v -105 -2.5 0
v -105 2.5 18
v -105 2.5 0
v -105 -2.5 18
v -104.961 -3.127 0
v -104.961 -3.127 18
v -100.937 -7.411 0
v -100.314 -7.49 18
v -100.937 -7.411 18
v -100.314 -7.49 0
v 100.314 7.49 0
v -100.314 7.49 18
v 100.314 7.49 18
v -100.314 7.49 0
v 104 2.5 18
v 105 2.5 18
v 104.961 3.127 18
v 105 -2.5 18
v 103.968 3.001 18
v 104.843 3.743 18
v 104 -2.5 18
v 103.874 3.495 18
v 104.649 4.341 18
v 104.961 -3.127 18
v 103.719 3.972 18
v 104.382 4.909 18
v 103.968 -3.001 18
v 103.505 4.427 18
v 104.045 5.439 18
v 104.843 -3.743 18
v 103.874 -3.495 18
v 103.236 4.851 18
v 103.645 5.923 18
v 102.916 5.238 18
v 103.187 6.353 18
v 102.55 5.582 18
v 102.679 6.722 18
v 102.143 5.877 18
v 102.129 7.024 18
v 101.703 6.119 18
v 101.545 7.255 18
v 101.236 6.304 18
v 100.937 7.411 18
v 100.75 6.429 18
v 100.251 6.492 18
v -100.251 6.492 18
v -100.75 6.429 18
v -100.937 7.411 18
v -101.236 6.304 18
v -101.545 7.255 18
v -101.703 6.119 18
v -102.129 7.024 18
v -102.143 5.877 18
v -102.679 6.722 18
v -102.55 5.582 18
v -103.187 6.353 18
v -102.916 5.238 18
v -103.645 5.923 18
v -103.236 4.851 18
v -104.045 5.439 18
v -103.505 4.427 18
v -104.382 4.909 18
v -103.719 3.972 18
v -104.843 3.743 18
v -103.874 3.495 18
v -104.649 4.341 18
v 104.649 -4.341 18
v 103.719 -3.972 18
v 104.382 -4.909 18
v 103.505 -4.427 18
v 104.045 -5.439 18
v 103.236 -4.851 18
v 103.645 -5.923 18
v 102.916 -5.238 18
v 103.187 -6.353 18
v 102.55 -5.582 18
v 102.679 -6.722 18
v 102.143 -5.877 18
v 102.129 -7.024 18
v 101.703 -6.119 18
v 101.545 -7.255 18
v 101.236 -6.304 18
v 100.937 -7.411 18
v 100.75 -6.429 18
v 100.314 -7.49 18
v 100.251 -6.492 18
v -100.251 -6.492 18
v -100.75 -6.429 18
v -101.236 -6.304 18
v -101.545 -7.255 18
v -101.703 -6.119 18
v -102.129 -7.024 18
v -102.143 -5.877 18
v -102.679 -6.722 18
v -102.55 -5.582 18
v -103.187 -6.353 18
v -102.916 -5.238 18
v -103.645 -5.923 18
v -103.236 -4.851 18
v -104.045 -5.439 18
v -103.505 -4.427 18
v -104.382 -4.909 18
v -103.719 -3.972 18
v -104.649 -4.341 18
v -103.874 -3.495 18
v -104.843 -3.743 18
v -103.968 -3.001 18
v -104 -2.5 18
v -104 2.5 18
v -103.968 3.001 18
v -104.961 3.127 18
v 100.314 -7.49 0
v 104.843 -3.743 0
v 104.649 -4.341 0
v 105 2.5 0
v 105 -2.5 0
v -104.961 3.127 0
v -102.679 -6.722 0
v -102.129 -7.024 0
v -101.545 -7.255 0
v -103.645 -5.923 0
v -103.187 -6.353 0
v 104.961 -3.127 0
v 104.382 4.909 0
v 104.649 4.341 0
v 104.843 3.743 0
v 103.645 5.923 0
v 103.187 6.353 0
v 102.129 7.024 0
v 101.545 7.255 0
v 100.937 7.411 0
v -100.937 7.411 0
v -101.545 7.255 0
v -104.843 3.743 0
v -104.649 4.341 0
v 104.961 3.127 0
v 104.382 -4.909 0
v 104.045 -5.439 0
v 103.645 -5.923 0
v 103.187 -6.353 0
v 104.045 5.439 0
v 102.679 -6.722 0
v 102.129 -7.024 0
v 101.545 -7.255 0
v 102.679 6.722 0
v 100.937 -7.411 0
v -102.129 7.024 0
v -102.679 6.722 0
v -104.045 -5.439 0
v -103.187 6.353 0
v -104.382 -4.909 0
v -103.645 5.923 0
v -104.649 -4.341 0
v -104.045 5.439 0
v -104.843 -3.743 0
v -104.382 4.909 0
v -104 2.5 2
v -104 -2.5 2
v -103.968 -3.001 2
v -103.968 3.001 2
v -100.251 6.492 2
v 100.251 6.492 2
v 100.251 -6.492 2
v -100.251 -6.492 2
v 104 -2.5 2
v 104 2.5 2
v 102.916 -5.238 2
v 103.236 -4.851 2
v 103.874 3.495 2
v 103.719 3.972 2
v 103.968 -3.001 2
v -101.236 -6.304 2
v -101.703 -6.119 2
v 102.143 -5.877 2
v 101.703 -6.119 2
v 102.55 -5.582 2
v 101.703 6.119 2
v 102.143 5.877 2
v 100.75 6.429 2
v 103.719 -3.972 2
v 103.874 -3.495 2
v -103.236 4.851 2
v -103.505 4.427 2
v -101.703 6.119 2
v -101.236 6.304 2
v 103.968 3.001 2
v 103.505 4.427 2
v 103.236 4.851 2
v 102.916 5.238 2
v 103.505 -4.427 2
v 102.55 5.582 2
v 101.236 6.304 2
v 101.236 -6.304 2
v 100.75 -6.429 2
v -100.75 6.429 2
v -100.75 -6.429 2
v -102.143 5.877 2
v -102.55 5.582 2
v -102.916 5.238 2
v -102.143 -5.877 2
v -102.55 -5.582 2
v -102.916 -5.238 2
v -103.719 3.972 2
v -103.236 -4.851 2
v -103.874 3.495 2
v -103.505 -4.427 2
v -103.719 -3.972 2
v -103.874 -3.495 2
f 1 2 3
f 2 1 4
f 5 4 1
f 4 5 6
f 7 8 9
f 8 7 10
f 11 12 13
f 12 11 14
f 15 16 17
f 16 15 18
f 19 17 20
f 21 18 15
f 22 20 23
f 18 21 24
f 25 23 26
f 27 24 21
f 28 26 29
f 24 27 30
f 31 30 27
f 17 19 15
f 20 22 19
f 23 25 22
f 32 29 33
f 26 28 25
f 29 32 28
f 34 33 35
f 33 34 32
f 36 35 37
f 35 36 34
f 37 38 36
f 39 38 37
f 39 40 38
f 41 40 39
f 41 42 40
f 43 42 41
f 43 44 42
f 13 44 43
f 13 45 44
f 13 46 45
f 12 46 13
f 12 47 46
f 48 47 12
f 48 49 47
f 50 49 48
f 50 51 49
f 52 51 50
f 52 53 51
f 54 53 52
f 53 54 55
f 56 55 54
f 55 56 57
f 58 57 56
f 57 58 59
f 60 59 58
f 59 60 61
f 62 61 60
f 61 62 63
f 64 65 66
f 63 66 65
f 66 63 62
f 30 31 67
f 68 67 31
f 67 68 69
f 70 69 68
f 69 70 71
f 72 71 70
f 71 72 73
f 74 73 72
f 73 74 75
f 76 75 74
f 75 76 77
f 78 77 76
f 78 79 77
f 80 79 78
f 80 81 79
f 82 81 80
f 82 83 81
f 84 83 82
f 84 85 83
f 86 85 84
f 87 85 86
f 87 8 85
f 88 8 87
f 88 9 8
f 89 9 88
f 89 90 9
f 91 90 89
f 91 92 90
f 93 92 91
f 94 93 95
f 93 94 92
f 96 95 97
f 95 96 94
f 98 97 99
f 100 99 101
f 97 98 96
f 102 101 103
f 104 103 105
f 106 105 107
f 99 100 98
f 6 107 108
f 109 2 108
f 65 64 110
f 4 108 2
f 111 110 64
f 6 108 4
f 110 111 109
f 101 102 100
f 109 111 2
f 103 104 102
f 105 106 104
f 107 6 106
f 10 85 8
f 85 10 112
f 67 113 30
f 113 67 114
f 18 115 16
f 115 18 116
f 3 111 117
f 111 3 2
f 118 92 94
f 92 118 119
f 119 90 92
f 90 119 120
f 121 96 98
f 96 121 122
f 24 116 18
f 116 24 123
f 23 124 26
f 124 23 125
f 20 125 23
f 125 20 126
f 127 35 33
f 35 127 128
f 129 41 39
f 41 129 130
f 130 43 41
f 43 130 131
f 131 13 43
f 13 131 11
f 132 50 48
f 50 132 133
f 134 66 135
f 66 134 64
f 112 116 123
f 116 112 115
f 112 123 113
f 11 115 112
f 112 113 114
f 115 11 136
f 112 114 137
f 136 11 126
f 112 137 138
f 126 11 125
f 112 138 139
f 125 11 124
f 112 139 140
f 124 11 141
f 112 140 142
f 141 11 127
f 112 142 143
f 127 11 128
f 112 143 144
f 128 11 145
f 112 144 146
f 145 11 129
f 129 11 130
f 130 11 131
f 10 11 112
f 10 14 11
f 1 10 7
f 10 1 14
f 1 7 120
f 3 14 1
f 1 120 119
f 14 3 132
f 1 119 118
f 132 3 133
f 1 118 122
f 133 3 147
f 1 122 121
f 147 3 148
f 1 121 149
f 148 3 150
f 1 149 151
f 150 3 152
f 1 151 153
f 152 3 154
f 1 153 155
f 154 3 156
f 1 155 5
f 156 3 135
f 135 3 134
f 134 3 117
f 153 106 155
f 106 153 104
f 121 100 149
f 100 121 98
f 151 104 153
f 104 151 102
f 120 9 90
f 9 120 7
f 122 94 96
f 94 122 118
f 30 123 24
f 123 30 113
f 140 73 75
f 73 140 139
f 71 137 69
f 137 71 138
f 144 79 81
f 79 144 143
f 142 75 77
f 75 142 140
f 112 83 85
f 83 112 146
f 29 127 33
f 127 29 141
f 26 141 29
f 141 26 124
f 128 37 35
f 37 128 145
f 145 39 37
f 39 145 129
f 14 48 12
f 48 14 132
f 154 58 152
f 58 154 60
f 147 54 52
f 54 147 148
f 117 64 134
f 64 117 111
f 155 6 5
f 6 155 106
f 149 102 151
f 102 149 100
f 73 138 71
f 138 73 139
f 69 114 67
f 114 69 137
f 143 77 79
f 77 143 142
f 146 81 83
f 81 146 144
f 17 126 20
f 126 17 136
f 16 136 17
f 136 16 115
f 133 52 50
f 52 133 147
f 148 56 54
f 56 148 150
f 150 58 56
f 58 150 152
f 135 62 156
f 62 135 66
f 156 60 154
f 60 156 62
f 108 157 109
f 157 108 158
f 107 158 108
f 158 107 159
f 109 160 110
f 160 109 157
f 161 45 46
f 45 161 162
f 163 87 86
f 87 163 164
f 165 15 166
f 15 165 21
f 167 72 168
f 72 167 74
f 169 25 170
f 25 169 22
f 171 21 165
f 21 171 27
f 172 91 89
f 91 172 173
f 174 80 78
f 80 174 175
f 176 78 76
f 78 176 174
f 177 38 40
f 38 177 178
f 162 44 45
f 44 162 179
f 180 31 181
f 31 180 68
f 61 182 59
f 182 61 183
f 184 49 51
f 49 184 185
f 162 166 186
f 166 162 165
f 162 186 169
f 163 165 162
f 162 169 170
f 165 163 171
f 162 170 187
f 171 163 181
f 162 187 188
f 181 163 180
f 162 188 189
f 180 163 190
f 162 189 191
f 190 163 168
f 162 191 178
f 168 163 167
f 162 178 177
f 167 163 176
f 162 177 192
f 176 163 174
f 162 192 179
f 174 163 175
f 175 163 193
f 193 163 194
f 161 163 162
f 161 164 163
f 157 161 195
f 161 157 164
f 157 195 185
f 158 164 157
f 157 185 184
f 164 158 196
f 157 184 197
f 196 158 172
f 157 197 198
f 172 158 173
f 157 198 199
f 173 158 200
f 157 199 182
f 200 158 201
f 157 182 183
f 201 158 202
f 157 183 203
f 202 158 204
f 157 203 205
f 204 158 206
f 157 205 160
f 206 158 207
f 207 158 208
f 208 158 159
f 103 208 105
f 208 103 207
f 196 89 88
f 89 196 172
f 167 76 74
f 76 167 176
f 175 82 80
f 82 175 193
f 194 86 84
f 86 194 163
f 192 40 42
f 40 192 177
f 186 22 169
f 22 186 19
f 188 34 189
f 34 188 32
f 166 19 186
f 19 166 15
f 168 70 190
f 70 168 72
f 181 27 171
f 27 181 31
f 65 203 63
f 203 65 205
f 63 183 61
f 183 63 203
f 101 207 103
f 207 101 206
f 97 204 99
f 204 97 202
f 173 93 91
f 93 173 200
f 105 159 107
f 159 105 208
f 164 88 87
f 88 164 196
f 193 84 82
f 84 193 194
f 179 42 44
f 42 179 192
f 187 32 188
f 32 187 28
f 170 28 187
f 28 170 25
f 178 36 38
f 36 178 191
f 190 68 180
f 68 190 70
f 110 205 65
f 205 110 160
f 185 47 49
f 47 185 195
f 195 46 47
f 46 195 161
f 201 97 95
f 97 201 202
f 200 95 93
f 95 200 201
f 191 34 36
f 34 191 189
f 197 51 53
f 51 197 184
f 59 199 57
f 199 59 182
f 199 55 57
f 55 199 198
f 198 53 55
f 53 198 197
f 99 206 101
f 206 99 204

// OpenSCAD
$fn = 50;


difference() {
	union() {
		hull() {
			translate(v = [-100.0000000000, 2.5000000000, 0]) {
				cylinder(h = 18, r = 5);
			}
			translate(v = [100.0000000000, 2.5000000000, 0]) {
				cylinder(h = 18, r = 5);
			}
			translate(v = [-100.0000000000, -2.5000000000, 0]) {
				cylinder(h = 18, r = 5);
			}
			translate(v = [100.0000000000, -2.5000000000, 0]) {
				cylinder(h = 18, r = 5);
			}
		}
	}
	union() {
		translate(v = [0, 0, 2]) {
			hull() {
				translate(v = [-100.0000000000, 2.5000000000, 0]) {
					cylinder(h = 16, r = 4);
				}
				translate(v = [100.0000000000, 2.5000000000, 0]) {
					cylinder(h = 16, r = 4);
				}
				translate(v = [-100.0000000000, -2.5000000000, 0]) {
					cylinder(h = 16, r = 4);
				}
				translate(v = [100.0000000000, -2.5000000000, 0]) {
					cylinder(h = 16, r = 4);
				}
			}
		}
	}
}
